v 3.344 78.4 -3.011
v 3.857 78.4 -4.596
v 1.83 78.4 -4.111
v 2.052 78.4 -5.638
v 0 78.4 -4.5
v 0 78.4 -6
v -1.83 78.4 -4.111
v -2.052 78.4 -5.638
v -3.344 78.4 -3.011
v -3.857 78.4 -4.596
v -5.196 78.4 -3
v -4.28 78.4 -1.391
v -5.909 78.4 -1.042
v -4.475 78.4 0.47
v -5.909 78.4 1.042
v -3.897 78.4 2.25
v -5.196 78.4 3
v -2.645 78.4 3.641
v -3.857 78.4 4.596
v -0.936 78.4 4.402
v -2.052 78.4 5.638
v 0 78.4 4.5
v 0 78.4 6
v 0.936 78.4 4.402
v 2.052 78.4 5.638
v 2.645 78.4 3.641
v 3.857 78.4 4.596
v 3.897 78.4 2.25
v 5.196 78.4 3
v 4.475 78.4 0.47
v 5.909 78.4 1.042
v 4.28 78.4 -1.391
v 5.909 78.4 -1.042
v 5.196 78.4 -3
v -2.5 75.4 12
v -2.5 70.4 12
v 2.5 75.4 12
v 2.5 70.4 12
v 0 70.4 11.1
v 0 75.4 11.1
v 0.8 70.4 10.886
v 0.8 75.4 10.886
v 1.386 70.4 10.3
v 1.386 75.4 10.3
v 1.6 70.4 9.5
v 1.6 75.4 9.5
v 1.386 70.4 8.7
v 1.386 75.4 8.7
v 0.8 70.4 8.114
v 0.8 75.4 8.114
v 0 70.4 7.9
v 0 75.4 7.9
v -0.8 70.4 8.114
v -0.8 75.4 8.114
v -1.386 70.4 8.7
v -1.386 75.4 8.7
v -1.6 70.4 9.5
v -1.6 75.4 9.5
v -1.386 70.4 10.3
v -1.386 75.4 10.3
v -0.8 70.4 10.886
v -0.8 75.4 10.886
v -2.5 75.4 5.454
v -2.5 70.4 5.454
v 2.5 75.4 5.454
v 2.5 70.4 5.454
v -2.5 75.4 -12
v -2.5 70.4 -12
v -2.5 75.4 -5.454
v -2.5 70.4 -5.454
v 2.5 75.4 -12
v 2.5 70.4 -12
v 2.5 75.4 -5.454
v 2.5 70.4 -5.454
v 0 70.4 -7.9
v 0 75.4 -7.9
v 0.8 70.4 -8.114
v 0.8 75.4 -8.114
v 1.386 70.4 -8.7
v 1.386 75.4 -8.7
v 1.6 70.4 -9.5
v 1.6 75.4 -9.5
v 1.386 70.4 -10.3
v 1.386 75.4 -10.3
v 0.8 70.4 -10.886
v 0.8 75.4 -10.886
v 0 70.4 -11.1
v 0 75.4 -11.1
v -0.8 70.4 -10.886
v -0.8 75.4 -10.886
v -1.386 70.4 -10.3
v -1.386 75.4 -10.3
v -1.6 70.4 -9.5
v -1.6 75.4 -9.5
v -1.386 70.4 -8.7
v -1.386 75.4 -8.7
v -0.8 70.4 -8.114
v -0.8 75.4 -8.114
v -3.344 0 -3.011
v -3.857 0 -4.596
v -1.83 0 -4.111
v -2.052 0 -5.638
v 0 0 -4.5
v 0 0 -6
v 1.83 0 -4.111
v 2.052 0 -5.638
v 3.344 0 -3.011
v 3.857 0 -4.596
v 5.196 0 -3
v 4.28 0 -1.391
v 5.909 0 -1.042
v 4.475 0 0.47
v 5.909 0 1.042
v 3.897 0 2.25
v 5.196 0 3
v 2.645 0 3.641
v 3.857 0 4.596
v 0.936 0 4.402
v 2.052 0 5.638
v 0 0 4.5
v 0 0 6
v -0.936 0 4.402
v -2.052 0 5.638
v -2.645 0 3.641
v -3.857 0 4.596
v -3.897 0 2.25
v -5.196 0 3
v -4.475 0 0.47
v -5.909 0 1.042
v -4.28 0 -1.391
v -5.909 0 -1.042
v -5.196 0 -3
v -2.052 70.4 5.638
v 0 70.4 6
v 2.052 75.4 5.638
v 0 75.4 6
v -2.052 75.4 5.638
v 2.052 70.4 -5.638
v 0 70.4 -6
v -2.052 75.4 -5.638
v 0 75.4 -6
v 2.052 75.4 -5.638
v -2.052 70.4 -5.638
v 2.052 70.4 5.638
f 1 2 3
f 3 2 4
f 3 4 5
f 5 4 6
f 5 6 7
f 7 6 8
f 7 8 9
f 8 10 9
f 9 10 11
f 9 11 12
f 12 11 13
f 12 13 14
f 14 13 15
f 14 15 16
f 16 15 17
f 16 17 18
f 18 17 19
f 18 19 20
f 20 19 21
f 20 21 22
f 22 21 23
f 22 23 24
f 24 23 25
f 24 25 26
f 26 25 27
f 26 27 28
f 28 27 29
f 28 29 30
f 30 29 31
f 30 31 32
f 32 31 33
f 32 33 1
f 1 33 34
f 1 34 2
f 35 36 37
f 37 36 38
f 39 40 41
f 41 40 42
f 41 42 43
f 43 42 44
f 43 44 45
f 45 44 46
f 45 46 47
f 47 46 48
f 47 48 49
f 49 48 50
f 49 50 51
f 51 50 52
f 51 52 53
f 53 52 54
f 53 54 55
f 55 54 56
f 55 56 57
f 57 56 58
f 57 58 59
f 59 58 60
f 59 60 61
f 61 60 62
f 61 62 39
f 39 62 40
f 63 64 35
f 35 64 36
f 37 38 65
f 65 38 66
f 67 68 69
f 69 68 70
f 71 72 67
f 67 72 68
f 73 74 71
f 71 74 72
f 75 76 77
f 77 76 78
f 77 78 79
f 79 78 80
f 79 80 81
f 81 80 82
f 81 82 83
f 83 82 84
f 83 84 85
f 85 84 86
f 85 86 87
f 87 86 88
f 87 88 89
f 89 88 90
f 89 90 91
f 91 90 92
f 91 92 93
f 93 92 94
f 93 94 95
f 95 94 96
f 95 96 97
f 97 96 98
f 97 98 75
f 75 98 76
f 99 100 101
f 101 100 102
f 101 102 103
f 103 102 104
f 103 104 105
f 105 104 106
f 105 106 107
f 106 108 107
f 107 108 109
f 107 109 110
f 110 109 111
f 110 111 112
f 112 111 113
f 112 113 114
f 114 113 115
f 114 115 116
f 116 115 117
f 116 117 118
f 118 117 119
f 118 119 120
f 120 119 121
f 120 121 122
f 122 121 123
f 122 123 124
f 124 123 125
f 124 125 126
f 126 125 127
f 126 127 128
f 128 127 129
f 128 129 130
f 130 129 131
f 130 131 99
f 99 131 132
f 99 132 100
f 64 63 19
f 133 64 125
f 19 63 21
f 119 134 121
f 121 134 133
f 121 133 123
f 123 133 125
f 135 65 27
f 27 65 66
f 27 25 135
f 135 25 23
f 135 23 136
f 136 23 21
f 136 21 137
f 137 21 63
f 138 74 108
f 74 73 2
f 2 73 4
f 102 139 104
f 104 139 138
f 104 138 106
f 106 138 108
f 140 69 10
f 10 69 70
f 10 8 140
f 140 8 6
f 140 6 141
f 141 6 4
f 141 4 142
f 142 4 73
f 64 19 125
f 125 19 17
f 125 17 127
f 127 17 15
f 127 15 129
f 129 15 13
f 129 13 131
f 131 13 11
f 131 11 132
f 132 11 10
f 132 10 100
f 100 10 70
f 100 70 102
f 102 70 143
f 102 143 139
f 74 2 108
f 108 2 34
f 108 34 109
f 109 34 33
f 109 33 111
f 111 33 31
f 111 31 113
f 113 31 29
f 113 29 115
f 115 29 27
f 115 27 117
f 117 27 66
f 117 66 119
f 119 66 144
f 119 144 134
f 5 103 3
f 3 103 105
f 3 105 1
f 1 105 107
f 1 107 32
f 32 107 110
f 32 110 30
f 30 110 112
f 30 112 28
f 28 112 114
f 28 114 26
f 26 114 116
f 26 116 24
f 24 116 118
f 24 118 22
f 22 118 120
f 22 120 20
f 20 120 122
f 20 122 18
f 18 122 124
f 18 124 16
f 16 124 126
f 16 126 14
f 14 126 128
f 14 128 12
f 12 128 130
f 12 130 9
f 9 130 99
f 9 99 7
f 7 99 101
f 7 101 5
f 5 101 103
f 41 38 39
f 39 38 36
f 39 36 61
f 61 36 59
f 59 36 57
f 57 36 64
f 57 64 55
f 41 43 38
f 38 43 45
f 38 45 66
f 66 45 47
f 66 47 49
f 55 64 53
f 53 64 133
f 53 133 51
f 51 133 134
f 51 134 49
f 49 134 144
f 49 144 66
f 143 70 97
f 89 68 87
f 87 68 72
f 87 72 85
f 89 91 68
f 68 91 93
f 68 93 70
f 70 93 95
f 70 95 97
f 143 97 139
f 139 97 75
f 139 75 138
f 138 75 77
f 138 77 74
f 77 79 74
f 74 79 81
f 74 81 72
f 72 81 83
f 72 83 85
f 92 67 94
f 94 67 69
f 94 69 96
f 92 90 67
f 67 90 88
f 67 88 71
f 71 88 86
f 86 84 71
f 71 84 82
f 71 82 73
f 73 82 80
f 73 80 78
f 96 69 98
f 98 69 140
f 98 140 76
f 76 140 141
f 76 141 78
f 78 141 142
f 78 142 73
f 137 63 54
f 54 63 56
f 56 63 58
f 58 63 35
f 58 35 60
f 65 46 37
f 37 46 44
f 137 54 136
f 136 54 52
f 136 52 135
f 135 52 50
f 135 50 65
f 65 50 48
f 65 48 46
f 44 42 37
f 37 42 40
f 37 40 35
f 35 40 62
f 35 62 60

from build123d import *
from build123d.topology import SkipClean

# Parameters (mm, degrees)
SKETCH1_R           = 6
SKETCH1_R_2         = 4.5
BOSS_EXTRUDE1_DEPTH = 78.4
BOSS_EXTRUDE2_START = -8
SKETCH2_R           = 1.6
SKETCH2_R_2         = 4.5
BOSS_EXTRUDE2_DEPTH = 8
SKETCH3_OUTSIDE_W   = 30.572
SKETCH3_OUTSIDE_H   = 42.572
SKETCH3_OUTSIDE_R   = 6
CUT_EXTRUDE1_DEPTH  = 3


with BuildPart() as part:
    # Sketch1 → Boss-Extrude1 (new body)
    with BuildSketch(Plane(origin=(0, 0, 0), x_dir=(1, 0, 0), z_dir=(0, 1, 0))):
        with Locations(Location((0, 0, 0), (0, 0, 270))):
            Circle(SKETCH1_R)
        with Locations(Location((0, 0, 0), (0, 0, 270))):
            Circle(SKETCH1_R_2, mode=Mode.SUBTRACT)
    extrude(amount=BOSS_EXTRUDE1_DEPTH)

    # Sketch2 → Boss-Extrude2 (add)
    with SkipClean():  # the faces are left unmerged after this step: merging them gives an invalid solid
        with BuildSketch(Plane(origin=(0, 78.4, 0), x_dir=(1, 0, 0), z_dir=(0, 1, 0)).offset(BOSS_EXTRUDE2_START)):
            with BuildLine():
                Line((-2.5, 12), (2.5, 12))
                Line((2.5, 12), (2.5, 5.454356057))
                ThreePointArc((2.5, 5.454356057), (6, 0), (2.5, -5.454356057))
                Line((2.5, -5.454356057), (2.5, -12))
                Line((2.5, -12), (-2.5, -12))
                Line((-2.5, -12), (-2.5, -5.454356057))
                ThreePointArc((-2.5, -5.454356057), (-6, 0), (-2.5, 5.454356057))
                Line((-2.5, 5.454356057), (-2.5, 12))
            make_face()
            with Locations(Location((0, 9.5, 0), (0, 0, 270))):
                Circle(SKETCH2_R, mode=Mode.SUBTRACT)
            with Locations(Location((0, -9.5, 0), (0, 0, 270))):
                Circle(SKETCH2_R, mode=Mode.SUBTRACT)
            with Locations(Location((0, 0, 0), (0, 0, 270))):
                Circle(SKETCH2_R_2, mode=Mode.SUBTRACT)
        extrude(amount=BOSS_EXTRUDE2_DEPTH)

    # Sketch3 outside → Cut-Extrude1 (cut)
    with SkipClean():  # the faces are left unmerged after this step: merging them gives an invalid solid
        with BuildSketch(Plane(origin=(0, 78.4, 0), x_dir=(1, 0, 0), z_dir=(0, 1, 0))):
            Rectangle(SKETCH3_OUTSIDE_W, SKETCH3_OUTSIDE_H)
            with Locations(Location((0, 0, 0), (0, 0, 270))):
                Circle(SKETCH3_OUTSIDE_R, mode=Mode.SUBTRACT)
        extrude(amount=-CUT_EXTRUDE1_DEPTH, mode=Mode.SUBTRACT)


solid = part.part
